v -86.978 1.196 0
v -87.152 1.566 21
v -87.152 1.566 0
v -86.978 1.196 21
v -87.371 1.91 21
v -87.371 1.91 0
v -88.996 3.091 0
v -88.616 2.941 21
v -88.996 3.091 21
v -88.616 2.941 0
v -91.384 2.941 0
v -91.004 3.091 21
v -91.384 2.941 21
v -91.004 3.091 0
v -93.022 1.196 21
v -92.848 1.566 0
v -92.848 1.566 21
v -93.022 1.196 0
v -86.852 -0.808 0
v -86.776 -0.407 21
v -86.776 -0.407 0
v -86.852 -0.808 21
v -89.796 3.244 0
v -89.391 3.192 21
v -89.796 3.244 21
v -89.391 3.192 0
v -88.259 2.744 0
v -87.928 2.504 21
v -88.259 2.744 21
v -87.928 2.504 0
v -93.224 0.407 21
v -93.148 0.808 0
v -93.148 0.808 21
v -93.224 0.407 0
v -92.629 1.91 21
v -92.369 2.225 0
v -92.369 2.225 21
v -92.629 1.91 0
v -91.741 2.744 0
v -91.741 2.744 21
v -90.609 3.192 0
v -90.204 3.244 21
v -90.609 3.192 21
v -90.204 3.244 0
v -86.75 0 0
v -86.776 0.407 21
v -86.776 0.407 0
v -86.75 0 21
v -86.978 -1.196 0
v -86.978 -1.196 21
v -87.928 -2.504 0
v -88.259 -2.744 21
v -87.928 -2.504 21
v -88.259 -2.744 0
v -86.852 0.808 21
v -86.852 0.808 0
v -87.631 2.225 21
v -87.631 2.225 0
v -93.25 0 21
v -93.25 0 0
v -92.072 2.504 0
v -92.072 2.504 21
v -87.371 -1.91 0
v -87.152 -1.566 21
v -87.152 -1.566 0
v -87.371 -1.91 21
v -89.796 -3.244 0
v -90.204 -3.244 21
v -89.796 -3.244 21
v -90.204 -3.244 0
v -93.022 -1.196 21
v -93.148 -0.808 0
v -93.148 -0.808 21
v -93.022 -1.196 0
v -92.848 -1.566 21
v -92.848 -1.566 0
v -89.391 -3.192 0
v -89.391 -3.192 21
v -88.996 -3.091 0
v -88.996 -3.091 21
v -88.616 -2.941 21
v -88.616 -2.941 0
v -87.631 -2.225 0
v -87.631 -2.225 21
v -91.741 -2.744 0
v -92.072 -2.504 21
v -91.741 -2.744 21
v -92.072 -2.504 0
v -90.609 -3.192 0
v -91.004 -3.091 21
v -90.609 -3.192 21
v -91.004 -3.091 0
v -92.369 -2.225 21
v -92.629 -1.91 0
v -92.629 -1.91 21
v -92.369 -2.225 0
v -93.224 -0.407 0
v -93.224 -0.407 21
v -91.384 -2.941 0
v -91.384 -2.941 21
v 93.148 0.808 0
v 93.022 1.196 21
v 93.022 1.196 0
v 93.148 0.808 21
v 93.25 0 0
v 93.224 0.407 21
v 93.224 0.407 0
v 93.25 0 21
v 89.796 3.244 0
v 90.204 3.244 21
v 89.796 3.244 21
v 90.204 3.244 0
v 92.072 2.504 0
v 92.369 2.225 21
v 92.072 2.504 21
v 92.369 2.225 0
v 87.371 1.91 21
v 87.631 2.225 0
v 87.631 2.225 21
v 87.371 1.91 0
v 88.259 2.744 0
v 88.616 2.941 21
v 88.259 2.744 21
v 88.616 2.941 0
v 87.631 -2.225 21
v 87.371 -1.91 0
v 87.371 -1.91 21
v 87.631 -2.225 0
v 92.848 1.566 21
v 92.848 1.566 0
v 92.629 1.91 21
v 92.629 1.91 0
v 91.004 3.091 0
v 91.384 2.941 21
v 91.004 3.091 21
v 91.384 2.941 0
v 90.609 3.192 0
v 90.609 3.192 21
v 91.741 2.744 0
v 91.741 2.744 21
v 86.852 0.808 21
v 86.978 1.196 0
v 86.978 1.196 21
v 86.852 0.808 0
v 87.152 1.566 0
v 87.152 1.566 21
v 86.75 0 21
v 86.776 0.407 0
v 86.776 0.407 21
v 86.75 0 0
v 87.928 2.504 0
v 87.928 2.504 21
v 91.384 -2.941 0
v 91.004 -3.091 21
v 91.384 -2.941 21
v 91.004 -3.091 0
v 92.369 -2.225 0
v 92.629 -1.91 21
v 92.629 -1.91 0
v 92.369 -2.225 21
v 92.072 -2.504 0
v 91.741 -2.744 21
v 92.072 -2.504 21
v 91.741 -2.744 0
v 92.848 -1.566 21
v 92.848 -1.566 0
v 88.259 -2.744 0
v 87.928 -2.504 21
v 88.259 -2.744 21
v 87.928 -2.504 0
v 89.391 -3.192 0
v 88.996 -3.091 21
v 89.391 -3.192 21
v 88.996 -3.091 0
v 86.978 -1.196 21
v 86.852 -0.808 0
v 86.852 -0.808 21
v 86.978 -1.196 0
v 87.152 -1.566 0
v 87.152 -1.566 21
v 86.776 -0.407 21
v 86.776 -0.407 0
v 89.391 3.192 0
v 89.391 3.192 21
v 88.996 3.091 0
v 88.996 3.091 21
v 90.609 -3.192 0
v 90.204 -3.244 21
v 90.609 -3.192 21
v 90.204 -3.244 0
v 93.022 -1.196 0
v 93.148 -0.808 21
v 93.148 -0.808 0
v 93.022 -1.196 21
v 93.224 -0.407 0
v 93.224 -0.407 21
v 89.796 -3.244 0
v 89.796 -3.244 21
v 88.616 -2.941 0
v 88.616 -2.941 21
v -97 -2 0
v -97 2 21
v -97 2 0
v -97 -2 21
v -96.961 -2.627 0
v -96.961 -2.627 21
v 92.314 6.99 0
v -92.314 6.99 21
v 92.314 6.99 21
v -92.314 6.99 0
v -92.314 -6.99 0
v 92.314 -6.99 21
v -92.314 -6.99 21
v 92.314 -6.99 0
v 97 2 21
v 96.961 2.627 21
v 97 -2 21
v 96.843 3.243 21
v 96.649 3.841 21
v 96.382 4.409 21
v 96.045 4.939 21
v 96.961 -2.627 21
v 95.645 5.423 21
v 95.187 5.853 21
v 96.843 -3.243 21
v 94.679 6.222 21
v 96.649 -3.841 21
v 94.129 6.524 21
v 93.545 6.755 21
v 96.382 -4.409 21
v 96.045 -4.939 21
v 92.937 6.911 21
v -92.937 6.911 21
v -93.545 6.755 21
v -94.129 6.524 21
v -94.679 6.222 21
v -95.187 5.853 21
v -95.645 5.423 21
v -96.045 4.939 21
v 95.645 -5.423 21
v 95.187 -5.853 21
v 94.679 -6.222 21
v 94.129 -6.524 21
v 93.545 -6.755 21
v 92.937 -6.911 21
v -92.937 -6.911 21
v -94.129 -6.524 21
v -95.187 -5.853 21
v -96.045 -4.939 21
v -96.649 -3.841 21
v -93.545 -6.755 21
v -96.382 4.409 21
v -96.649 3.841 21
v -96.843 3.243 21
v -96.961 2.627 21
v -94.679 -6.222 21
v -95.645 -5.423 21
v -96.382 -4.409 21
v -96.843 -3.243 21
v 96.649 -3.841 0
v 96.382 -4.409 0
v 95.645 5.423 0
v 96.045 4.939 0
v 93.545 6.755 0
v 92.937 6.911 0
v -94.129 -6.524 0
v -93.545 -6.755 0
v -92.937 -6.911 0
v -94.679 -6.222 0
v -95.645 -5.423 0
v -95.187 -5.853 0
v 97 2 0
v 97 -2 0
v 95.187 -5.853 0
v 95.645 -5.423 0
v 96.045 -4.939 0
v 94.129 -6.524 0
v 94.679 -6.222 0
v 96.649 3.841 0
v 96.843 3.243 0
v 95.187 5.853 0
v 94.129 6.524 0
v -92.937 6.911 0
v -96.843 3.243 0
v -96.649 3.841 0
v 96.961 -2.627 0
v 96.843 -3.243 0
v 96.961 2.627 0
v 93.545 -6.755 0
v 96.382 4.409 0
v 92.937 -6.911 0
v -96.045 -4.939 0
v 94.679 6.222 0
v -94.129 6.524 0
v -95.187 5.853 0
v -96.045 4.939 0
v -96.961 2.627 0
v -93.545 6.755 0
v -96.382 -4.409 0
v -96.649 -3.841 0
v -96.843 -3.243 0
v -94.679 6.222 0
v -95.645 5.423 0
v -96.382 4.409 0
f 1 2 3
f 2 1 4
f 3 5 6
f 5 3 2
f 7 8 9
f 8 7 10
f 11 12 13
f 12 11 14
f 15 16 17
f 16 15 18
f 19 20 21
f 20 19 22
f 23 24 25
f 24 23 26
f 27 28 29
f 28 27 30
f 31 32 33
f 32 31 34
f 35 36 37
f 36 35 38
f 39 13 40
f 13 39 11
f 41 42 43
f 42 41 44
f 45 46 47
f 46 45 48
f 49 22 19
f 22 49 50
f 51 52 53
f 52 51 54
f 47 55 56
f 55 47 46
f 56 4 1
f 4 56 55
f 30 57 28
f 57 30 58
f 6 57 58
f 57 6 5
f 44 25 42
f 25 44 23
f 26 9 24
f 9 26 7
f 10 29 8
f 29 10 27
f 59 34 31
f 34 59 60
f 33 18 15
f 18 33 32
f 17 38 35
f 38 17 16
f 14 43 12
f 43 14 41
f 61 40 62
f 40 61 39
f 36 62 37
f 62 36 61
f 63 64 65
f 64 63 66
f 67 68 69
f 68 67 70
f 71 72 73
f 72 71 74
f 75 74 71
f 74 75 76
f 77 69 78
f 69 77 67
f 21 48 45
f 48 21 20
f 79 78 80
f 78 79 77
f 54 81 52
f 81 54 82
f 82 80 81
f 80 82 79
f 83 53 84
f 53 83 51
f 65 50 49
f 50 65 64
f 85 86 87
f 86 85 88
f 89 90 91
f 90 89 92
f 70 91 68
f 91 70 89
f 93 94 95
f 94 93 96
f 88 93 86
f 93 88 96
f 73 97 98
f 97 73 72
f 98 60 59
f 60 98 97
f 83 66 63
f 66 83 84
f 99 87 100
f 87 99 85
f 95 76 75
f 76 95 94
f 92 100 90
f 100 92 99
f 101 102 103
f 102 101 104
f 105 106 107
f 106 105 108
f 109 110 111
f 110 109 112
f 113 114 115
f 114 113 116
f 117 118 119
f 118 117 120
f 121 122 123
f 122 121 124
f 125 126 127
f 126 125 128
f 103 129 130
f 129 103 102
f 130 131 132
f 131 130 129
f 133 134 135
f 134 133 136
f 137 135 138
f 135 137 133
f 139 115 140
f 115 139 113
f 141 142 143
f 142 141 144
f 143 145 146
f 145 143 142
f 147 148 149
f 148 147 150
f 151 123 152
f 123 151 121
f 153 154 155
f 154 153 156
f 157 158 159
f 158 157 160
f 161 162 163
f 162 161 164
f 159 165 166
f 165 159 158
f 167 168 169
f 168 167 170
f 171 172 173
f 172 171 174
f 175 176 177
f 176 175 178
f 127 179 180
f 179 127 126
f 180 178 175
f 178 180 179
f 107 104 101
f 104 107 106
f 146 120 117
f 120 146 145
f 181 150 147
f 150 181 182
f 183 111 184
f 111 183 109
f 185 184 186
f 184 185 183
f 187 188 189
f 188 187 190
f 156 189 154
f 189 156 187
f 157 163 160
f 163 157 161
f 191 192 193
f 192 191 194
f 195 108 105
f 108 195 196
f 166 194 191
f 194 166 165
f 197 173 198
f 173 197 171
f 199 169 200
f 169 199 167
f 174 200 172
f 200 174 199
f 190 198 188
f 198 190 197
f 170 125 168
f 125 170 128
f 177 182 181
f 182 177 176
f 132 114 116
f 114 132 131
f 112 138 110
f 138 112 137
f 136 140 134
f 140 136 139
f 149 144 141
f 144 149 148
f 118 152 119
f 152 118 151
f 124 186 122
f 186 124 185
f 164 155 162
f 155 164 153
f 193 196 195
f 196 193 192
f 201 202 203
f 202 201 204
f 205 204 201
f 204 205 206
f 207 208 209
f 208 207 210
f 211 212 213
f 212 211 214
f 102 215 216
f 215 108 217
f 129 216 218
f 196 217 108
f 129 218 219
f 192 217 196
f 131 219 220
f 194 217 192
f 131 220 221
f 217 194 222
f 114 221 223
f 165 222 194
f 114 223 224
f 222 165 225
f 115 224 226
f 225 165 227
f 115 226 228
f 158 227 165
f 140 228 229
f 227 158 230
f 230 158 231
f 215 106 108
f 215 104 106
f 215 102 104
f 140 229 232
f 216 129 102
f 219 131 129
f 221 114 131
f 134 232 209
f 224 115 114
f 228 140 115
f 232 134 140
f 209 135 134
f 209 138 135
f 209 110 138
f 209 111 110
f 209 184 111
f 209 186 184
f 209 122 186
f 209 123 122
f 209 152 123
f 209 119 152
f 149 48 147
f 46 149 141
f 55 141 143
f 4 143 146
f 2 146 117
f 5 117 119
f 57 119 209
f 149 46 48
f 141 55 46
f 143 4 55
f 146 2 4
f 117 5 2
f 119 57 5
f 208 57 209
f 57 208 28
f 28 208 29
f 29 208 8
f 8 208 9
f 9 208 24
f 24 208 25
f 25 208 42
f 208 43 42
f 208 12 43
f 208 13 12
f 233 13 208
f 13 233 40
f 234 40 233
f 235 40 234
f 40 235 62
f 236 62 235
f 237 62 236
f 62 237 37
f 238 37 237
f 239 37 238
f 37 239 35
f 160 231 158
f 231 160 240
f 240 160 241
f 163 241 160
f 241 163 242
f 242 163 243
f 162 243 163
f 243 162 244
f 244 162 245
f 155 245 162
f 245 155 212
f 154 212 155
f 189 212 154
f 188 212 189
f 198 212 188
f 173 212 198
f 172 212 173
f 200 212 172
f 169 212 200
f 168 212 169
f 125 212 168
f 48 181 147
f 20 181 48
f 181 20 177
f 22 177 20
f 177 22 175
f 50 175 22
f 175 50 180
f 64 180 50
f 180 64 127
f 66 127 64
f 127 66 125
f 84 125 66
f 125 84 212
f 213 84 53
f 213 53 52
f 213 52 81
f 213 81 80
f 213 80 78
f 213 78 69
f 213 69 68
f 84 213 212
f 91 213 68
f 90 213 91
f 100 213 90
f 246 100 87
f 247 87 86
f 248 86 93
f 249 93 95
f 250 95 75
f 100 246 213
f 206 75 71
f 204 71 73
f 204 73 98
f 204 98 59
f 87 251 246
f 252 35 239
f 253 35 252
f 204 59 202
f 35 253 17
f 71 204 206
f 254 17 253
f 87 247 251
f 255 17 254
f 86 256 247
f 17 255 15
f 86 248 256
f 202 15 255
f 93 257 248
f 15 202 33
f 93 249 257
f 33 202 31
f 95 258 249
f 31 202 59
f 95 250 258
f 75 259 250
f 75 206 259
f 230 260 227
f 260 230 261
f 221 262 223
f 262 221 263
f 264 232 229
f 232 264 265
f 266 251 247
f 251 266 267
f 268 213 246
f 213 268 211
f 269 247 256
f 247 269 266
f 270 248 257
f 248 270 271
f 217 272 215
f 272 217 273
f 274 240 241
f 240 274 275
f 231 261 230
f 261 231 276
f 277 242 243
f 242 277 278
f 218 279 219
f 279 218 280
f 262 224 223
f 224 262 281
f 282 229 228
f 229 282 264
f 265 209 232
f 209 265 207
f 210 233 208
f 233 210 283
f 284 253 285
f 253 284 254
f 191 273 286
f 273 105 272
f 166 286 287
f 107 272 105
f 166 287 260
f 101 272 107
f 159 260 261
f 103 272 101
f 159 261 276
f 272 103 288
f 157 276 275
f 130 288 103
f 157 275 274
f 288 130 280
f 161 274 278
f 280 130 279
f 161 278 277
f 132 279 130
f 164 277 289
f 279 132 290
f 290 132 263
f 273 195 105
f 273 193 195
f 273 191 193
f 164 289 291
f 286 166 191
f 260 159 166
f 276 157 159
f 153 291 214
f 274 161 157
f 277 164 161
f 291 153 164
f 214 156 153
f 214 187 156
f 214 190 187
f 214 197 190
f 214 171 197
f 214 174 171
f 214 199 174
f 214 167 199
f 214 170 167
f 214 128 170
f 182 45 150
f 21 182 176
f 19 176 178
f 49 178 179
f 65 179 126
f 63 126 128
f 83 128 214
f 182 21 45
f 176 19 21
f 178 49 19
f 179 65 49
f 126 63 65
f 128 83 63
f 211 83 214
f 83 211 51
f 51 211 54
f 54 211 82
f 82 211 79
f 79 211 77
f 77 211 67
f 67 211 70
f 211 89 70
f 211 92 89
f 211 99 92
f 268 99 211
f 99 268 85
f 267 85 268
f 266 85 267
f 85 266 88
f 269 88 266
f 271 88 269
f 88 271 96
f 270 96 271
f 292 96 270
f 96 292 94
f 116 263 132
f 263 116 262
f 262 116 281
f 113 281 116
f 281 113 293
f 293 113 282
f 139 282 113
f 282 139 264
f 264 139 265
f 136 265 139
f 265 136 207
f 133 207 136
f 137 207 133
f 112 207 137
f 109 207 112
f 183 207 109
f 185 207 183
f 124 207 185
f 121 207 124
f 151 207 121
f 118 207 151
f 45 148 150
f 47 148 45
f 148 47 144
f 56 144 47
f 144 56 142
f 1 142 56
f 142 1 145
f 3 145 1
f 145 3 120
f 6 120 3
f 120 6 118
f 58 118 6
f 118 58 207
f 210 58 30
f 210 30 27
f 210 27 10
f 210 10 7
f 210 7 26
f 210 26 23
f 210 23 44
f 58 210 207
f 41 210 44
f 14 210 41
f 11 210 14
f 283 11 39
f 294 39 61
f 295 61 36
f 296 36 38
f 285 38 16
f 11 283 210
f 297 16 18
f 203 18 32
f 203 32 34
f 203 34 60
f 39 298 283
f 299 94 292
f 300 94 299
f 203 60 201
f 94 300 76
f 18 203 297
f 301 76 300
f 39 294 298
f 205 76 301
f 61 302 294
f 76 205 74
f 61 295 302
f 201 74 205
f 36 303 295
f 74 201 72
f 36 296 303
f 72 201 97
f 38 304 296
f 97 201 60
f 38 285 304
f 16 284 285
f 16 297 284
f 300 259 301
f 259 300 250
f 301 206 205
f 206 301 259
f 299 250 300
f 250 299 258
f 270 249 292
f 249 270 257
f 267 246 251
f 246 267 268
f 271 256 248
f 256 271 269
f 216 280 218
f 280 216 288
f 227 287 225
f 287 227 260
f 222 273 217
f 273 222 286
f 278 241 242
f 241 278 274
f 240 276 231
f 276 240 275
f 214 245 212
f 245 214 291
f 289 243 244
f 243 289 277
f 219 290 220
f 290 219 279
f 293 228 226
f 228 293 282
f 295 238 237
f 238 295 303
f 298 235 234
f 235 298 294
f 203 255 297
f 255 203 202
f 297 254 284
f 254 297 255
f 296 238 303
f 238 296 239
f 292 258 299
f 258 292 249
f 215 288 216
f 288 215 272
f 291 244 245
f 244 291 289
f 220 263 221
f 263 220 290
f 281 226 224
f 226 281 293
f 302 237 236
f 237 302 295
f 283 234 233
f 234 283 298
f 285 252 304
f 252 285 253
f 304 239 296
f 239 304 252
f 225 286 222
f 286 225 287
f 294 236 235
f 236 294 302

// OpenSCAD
$fn = 50;


difference() {
	union() {
		hull() {
			translate(v = [-92.0000000000, 2.0000000000, 0]) {
				cylinder(h = 21, r = 5);
			}
			translate(v = [92.0000000000, 2.0000000000, 0]) {
				cylinder(h = 21, r = 5);
			}
			translate(v = [-92.0000000000, -2.0000000000, 0]) {
				cylinder(h = 21, r = 5);
			}
			translate(v = [92.0000000000, -2.0000000000, 0]) {
				cylinder(h = 21, r = 5);
			}
		}
	}
	union() {
		translate(v = [-90.0000000000, 0.0000000000, -100.0000000000]) {
			cylinder(h = 200, r = 3.2500000000);
		}
		translate(v = [-90.0000000000, 0.0000000000, -100.0000000000]) {
			cylinder(h = 200, r = 3.2500000000);
		}
		translate(v = [90.0000000000, 0.0000000000, -100.0000000000]) {
			cylinder(h = 200, r = 3.2500000000);
		}
		translate(v = [90.0000000000, 0.0000000000, -100.0000000000]) {
			cylinder(h = 200, r = 3.2500000000);
		}
	}
}
